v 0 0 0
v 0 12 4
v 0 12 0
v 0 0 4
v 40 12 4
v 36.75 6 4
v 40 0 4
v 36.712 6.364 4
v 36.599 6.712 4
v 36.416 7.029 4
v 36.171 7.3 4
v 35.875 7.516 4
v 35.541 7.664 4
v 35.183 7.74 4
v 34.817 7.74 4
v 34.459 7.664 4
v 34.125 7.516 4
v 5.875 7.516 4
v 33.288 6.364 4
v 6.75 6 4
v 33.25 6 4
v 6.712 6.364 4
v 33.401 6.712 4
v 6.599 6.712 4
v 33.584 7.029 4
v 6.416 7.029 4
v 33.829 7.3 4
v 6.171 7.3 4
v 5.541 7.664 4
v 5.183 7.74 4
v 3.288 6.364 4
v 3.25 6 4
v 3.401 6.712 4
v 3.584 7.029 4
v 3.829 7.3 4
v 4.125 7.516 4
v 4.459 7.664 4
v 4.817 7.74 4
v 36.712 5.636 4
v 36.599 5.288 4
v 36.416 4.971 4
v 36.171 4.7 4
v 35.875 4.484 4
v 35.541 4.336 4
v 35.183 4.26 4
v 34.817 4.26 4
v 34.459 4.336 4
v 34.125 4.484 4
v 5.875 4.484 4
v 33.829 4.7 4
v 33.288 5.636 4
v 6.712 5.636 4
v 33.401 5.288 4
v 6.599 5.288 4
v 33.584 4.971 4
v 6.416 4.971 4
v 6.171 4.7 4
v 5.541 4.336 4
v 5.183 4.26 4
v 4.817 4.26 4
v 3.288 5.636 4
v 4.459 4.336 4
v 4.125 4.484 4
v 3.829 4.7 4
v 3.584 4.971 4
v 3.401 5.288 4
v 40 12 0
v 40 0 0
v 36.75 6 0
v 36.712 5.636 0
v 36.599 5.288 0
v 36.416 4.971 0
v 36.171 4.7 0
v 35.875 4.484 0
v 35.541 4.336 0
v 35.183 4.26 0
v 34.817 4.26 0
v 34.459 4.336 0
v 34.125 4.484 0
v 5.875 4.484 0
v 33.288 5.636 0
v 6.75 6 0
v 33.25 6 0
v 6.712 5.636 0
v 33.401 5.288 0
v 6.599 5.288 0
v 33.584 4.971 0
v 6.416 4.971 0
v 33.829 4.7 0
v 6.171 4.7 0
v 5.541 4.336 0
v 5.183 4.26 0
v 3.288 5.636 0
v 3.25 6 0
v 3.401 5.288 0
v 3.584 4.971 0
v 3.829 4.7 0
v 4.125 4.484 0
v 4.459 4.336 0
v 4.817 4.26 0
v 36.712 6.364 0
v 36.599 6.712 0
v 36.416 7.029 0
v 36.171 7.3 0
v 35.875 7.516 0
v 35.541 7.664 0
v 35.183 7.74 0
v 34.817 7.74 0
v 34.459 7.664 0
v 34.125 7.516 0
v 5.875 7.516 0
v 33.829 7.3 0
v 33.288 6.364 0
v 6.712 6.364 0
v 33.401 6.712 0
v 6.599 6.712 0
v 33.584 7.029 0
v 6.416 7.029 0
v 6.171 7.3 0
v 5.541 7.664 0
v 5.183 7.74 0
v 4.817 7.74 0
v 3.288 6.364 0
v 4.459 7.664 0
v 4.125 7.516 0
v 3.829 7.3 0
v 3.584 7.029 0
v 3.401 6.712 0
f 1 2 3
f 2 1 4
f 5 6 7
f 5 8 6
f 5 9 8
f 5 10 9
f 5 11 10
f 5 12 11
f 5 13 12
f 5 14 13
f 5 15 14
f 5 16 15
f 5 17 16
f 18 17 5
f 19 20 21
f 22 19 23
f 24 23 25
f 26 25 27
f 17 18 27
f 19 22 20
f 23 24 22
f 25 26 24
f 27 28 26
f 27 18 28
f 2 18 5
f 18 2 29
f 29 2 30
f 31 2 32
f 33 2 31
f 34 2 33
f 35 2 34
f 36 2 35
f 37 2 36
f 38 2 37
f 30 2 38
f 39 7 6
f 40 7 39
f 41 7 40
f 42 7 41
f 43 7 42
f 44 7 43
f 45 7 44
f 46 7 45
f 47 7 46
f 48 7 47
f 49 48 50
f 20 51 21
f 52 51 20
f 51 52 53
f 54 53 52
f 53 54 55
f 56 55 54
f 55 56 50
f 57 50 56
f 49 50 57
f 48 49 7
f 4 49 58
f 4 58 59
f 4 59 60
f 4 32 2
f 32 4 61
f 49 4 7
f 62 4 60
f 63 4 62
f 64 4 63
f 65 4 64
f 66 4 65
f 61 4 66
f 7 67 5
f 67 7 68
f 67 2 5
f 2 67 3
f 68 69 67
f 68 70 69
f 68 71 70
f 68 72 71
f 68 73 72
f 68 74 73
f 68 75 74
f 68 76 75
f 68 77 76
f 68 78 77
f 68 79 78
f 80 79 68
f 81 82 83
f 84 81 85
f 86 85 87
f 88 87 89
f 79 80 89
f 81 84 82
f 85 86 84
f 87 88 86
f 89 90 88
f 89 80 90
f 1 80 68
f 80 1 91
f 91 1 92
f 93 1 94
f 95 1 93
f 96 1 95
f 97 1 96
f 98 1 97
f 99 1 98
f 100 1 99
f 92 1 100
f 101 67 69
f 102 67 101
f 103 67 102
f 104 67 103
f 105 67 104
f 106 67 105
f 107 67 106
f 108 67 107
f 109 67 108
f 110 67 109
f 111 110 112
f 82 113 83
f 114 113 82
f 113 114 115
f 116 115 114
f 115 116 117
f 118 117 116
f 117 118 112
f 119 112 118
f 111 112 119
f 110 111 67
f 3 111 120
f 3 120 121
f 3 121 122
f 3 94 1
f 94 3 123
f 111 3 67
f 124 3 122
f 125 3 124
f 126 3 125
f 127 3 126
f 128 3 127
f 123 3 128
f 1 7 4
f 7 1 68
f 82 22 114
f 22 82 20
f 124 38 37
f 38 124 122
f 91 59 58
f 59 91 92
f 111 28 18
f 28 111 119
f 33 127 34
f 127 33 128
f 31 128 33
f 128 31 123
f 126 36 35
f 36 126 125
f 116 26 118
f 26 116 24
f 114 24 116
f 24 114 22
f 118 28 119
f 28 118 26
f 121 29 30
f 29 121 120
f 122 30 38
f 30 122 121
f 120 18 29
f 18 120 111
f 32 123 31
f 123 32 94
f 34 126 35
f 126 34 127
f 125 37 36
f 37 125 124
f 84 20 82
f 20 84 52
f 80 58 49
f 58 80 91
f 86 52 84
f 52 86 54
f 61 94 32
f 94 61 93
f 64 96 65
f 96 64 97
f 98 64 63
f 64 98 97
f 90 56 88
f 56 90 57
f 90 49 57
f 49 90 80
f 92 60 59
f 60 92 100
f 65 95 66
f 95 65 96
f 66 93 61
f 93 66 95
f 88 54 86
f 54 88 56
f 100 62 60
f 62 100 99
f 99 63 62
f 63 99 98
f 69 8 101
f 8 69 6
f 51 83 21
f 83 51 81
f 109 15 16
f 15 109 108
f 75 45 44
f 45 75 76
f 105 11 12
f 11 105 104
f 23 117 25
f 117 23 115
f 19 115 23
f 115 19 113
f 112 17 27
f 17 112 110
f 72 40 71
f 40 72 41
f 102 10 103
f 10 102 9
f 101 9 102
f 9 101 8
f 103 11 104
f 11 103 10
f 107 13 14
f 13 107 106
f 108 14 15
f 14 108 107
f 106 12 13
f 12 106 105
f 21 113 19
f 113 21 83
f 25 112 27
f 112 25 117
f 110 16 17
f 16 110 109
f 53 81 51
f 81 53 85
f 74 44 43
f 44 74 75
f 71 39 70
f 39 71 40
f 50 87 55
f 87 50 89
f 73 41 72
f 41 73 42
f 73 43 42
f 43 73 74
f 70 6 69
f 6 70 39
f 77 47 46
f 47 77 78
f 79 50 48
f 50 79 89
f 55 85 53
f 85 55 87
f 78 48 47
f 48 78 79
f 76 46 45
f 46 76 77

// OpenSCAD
// file: osat_cad_param.scad
x_length = 90;
y_length = 90;
z_length = 30;

wall_thickness = 3;

battery_x_length = 53;
battery_y_length = 17;


glass_mount_hole_diameter = 5.5;
glass_mount_hole_x_dist   = 15;
glass_mount_hole_y_dist   = 20;

piezo_mount_width = 40;
piezo_mount_height = 10;
piezo_y_dist      = 20;
piezo_solder_fix_hole_diameter = 2.5;
piezo_solder_fix_hole_diameter_2 = 3.5;

piezo_height_step    = 0.2;
piezo_diameter       = 27;
piezo_diameter_inner = 20;


//param solder mount
x_lenth_solder_mount = 12;


//param piezo_fix
y_length_piezo_fix = 20;


$fs = 0.01;
// main file
include<osat_cad_param.scad>


union()
{ 
  difference()
  {
    cube([piezo_mount_width, x_lenth_solder_mount, 4], center = false);
    #translate([5,  x_lenth_solder_mount/2, -5]) cylinder(d=3.5, h=100, center=false);
    #translate([35, x_lenth_solder_mount/2, -5]) cylinder(d=3.5, h=100, center=false);
  }
}
